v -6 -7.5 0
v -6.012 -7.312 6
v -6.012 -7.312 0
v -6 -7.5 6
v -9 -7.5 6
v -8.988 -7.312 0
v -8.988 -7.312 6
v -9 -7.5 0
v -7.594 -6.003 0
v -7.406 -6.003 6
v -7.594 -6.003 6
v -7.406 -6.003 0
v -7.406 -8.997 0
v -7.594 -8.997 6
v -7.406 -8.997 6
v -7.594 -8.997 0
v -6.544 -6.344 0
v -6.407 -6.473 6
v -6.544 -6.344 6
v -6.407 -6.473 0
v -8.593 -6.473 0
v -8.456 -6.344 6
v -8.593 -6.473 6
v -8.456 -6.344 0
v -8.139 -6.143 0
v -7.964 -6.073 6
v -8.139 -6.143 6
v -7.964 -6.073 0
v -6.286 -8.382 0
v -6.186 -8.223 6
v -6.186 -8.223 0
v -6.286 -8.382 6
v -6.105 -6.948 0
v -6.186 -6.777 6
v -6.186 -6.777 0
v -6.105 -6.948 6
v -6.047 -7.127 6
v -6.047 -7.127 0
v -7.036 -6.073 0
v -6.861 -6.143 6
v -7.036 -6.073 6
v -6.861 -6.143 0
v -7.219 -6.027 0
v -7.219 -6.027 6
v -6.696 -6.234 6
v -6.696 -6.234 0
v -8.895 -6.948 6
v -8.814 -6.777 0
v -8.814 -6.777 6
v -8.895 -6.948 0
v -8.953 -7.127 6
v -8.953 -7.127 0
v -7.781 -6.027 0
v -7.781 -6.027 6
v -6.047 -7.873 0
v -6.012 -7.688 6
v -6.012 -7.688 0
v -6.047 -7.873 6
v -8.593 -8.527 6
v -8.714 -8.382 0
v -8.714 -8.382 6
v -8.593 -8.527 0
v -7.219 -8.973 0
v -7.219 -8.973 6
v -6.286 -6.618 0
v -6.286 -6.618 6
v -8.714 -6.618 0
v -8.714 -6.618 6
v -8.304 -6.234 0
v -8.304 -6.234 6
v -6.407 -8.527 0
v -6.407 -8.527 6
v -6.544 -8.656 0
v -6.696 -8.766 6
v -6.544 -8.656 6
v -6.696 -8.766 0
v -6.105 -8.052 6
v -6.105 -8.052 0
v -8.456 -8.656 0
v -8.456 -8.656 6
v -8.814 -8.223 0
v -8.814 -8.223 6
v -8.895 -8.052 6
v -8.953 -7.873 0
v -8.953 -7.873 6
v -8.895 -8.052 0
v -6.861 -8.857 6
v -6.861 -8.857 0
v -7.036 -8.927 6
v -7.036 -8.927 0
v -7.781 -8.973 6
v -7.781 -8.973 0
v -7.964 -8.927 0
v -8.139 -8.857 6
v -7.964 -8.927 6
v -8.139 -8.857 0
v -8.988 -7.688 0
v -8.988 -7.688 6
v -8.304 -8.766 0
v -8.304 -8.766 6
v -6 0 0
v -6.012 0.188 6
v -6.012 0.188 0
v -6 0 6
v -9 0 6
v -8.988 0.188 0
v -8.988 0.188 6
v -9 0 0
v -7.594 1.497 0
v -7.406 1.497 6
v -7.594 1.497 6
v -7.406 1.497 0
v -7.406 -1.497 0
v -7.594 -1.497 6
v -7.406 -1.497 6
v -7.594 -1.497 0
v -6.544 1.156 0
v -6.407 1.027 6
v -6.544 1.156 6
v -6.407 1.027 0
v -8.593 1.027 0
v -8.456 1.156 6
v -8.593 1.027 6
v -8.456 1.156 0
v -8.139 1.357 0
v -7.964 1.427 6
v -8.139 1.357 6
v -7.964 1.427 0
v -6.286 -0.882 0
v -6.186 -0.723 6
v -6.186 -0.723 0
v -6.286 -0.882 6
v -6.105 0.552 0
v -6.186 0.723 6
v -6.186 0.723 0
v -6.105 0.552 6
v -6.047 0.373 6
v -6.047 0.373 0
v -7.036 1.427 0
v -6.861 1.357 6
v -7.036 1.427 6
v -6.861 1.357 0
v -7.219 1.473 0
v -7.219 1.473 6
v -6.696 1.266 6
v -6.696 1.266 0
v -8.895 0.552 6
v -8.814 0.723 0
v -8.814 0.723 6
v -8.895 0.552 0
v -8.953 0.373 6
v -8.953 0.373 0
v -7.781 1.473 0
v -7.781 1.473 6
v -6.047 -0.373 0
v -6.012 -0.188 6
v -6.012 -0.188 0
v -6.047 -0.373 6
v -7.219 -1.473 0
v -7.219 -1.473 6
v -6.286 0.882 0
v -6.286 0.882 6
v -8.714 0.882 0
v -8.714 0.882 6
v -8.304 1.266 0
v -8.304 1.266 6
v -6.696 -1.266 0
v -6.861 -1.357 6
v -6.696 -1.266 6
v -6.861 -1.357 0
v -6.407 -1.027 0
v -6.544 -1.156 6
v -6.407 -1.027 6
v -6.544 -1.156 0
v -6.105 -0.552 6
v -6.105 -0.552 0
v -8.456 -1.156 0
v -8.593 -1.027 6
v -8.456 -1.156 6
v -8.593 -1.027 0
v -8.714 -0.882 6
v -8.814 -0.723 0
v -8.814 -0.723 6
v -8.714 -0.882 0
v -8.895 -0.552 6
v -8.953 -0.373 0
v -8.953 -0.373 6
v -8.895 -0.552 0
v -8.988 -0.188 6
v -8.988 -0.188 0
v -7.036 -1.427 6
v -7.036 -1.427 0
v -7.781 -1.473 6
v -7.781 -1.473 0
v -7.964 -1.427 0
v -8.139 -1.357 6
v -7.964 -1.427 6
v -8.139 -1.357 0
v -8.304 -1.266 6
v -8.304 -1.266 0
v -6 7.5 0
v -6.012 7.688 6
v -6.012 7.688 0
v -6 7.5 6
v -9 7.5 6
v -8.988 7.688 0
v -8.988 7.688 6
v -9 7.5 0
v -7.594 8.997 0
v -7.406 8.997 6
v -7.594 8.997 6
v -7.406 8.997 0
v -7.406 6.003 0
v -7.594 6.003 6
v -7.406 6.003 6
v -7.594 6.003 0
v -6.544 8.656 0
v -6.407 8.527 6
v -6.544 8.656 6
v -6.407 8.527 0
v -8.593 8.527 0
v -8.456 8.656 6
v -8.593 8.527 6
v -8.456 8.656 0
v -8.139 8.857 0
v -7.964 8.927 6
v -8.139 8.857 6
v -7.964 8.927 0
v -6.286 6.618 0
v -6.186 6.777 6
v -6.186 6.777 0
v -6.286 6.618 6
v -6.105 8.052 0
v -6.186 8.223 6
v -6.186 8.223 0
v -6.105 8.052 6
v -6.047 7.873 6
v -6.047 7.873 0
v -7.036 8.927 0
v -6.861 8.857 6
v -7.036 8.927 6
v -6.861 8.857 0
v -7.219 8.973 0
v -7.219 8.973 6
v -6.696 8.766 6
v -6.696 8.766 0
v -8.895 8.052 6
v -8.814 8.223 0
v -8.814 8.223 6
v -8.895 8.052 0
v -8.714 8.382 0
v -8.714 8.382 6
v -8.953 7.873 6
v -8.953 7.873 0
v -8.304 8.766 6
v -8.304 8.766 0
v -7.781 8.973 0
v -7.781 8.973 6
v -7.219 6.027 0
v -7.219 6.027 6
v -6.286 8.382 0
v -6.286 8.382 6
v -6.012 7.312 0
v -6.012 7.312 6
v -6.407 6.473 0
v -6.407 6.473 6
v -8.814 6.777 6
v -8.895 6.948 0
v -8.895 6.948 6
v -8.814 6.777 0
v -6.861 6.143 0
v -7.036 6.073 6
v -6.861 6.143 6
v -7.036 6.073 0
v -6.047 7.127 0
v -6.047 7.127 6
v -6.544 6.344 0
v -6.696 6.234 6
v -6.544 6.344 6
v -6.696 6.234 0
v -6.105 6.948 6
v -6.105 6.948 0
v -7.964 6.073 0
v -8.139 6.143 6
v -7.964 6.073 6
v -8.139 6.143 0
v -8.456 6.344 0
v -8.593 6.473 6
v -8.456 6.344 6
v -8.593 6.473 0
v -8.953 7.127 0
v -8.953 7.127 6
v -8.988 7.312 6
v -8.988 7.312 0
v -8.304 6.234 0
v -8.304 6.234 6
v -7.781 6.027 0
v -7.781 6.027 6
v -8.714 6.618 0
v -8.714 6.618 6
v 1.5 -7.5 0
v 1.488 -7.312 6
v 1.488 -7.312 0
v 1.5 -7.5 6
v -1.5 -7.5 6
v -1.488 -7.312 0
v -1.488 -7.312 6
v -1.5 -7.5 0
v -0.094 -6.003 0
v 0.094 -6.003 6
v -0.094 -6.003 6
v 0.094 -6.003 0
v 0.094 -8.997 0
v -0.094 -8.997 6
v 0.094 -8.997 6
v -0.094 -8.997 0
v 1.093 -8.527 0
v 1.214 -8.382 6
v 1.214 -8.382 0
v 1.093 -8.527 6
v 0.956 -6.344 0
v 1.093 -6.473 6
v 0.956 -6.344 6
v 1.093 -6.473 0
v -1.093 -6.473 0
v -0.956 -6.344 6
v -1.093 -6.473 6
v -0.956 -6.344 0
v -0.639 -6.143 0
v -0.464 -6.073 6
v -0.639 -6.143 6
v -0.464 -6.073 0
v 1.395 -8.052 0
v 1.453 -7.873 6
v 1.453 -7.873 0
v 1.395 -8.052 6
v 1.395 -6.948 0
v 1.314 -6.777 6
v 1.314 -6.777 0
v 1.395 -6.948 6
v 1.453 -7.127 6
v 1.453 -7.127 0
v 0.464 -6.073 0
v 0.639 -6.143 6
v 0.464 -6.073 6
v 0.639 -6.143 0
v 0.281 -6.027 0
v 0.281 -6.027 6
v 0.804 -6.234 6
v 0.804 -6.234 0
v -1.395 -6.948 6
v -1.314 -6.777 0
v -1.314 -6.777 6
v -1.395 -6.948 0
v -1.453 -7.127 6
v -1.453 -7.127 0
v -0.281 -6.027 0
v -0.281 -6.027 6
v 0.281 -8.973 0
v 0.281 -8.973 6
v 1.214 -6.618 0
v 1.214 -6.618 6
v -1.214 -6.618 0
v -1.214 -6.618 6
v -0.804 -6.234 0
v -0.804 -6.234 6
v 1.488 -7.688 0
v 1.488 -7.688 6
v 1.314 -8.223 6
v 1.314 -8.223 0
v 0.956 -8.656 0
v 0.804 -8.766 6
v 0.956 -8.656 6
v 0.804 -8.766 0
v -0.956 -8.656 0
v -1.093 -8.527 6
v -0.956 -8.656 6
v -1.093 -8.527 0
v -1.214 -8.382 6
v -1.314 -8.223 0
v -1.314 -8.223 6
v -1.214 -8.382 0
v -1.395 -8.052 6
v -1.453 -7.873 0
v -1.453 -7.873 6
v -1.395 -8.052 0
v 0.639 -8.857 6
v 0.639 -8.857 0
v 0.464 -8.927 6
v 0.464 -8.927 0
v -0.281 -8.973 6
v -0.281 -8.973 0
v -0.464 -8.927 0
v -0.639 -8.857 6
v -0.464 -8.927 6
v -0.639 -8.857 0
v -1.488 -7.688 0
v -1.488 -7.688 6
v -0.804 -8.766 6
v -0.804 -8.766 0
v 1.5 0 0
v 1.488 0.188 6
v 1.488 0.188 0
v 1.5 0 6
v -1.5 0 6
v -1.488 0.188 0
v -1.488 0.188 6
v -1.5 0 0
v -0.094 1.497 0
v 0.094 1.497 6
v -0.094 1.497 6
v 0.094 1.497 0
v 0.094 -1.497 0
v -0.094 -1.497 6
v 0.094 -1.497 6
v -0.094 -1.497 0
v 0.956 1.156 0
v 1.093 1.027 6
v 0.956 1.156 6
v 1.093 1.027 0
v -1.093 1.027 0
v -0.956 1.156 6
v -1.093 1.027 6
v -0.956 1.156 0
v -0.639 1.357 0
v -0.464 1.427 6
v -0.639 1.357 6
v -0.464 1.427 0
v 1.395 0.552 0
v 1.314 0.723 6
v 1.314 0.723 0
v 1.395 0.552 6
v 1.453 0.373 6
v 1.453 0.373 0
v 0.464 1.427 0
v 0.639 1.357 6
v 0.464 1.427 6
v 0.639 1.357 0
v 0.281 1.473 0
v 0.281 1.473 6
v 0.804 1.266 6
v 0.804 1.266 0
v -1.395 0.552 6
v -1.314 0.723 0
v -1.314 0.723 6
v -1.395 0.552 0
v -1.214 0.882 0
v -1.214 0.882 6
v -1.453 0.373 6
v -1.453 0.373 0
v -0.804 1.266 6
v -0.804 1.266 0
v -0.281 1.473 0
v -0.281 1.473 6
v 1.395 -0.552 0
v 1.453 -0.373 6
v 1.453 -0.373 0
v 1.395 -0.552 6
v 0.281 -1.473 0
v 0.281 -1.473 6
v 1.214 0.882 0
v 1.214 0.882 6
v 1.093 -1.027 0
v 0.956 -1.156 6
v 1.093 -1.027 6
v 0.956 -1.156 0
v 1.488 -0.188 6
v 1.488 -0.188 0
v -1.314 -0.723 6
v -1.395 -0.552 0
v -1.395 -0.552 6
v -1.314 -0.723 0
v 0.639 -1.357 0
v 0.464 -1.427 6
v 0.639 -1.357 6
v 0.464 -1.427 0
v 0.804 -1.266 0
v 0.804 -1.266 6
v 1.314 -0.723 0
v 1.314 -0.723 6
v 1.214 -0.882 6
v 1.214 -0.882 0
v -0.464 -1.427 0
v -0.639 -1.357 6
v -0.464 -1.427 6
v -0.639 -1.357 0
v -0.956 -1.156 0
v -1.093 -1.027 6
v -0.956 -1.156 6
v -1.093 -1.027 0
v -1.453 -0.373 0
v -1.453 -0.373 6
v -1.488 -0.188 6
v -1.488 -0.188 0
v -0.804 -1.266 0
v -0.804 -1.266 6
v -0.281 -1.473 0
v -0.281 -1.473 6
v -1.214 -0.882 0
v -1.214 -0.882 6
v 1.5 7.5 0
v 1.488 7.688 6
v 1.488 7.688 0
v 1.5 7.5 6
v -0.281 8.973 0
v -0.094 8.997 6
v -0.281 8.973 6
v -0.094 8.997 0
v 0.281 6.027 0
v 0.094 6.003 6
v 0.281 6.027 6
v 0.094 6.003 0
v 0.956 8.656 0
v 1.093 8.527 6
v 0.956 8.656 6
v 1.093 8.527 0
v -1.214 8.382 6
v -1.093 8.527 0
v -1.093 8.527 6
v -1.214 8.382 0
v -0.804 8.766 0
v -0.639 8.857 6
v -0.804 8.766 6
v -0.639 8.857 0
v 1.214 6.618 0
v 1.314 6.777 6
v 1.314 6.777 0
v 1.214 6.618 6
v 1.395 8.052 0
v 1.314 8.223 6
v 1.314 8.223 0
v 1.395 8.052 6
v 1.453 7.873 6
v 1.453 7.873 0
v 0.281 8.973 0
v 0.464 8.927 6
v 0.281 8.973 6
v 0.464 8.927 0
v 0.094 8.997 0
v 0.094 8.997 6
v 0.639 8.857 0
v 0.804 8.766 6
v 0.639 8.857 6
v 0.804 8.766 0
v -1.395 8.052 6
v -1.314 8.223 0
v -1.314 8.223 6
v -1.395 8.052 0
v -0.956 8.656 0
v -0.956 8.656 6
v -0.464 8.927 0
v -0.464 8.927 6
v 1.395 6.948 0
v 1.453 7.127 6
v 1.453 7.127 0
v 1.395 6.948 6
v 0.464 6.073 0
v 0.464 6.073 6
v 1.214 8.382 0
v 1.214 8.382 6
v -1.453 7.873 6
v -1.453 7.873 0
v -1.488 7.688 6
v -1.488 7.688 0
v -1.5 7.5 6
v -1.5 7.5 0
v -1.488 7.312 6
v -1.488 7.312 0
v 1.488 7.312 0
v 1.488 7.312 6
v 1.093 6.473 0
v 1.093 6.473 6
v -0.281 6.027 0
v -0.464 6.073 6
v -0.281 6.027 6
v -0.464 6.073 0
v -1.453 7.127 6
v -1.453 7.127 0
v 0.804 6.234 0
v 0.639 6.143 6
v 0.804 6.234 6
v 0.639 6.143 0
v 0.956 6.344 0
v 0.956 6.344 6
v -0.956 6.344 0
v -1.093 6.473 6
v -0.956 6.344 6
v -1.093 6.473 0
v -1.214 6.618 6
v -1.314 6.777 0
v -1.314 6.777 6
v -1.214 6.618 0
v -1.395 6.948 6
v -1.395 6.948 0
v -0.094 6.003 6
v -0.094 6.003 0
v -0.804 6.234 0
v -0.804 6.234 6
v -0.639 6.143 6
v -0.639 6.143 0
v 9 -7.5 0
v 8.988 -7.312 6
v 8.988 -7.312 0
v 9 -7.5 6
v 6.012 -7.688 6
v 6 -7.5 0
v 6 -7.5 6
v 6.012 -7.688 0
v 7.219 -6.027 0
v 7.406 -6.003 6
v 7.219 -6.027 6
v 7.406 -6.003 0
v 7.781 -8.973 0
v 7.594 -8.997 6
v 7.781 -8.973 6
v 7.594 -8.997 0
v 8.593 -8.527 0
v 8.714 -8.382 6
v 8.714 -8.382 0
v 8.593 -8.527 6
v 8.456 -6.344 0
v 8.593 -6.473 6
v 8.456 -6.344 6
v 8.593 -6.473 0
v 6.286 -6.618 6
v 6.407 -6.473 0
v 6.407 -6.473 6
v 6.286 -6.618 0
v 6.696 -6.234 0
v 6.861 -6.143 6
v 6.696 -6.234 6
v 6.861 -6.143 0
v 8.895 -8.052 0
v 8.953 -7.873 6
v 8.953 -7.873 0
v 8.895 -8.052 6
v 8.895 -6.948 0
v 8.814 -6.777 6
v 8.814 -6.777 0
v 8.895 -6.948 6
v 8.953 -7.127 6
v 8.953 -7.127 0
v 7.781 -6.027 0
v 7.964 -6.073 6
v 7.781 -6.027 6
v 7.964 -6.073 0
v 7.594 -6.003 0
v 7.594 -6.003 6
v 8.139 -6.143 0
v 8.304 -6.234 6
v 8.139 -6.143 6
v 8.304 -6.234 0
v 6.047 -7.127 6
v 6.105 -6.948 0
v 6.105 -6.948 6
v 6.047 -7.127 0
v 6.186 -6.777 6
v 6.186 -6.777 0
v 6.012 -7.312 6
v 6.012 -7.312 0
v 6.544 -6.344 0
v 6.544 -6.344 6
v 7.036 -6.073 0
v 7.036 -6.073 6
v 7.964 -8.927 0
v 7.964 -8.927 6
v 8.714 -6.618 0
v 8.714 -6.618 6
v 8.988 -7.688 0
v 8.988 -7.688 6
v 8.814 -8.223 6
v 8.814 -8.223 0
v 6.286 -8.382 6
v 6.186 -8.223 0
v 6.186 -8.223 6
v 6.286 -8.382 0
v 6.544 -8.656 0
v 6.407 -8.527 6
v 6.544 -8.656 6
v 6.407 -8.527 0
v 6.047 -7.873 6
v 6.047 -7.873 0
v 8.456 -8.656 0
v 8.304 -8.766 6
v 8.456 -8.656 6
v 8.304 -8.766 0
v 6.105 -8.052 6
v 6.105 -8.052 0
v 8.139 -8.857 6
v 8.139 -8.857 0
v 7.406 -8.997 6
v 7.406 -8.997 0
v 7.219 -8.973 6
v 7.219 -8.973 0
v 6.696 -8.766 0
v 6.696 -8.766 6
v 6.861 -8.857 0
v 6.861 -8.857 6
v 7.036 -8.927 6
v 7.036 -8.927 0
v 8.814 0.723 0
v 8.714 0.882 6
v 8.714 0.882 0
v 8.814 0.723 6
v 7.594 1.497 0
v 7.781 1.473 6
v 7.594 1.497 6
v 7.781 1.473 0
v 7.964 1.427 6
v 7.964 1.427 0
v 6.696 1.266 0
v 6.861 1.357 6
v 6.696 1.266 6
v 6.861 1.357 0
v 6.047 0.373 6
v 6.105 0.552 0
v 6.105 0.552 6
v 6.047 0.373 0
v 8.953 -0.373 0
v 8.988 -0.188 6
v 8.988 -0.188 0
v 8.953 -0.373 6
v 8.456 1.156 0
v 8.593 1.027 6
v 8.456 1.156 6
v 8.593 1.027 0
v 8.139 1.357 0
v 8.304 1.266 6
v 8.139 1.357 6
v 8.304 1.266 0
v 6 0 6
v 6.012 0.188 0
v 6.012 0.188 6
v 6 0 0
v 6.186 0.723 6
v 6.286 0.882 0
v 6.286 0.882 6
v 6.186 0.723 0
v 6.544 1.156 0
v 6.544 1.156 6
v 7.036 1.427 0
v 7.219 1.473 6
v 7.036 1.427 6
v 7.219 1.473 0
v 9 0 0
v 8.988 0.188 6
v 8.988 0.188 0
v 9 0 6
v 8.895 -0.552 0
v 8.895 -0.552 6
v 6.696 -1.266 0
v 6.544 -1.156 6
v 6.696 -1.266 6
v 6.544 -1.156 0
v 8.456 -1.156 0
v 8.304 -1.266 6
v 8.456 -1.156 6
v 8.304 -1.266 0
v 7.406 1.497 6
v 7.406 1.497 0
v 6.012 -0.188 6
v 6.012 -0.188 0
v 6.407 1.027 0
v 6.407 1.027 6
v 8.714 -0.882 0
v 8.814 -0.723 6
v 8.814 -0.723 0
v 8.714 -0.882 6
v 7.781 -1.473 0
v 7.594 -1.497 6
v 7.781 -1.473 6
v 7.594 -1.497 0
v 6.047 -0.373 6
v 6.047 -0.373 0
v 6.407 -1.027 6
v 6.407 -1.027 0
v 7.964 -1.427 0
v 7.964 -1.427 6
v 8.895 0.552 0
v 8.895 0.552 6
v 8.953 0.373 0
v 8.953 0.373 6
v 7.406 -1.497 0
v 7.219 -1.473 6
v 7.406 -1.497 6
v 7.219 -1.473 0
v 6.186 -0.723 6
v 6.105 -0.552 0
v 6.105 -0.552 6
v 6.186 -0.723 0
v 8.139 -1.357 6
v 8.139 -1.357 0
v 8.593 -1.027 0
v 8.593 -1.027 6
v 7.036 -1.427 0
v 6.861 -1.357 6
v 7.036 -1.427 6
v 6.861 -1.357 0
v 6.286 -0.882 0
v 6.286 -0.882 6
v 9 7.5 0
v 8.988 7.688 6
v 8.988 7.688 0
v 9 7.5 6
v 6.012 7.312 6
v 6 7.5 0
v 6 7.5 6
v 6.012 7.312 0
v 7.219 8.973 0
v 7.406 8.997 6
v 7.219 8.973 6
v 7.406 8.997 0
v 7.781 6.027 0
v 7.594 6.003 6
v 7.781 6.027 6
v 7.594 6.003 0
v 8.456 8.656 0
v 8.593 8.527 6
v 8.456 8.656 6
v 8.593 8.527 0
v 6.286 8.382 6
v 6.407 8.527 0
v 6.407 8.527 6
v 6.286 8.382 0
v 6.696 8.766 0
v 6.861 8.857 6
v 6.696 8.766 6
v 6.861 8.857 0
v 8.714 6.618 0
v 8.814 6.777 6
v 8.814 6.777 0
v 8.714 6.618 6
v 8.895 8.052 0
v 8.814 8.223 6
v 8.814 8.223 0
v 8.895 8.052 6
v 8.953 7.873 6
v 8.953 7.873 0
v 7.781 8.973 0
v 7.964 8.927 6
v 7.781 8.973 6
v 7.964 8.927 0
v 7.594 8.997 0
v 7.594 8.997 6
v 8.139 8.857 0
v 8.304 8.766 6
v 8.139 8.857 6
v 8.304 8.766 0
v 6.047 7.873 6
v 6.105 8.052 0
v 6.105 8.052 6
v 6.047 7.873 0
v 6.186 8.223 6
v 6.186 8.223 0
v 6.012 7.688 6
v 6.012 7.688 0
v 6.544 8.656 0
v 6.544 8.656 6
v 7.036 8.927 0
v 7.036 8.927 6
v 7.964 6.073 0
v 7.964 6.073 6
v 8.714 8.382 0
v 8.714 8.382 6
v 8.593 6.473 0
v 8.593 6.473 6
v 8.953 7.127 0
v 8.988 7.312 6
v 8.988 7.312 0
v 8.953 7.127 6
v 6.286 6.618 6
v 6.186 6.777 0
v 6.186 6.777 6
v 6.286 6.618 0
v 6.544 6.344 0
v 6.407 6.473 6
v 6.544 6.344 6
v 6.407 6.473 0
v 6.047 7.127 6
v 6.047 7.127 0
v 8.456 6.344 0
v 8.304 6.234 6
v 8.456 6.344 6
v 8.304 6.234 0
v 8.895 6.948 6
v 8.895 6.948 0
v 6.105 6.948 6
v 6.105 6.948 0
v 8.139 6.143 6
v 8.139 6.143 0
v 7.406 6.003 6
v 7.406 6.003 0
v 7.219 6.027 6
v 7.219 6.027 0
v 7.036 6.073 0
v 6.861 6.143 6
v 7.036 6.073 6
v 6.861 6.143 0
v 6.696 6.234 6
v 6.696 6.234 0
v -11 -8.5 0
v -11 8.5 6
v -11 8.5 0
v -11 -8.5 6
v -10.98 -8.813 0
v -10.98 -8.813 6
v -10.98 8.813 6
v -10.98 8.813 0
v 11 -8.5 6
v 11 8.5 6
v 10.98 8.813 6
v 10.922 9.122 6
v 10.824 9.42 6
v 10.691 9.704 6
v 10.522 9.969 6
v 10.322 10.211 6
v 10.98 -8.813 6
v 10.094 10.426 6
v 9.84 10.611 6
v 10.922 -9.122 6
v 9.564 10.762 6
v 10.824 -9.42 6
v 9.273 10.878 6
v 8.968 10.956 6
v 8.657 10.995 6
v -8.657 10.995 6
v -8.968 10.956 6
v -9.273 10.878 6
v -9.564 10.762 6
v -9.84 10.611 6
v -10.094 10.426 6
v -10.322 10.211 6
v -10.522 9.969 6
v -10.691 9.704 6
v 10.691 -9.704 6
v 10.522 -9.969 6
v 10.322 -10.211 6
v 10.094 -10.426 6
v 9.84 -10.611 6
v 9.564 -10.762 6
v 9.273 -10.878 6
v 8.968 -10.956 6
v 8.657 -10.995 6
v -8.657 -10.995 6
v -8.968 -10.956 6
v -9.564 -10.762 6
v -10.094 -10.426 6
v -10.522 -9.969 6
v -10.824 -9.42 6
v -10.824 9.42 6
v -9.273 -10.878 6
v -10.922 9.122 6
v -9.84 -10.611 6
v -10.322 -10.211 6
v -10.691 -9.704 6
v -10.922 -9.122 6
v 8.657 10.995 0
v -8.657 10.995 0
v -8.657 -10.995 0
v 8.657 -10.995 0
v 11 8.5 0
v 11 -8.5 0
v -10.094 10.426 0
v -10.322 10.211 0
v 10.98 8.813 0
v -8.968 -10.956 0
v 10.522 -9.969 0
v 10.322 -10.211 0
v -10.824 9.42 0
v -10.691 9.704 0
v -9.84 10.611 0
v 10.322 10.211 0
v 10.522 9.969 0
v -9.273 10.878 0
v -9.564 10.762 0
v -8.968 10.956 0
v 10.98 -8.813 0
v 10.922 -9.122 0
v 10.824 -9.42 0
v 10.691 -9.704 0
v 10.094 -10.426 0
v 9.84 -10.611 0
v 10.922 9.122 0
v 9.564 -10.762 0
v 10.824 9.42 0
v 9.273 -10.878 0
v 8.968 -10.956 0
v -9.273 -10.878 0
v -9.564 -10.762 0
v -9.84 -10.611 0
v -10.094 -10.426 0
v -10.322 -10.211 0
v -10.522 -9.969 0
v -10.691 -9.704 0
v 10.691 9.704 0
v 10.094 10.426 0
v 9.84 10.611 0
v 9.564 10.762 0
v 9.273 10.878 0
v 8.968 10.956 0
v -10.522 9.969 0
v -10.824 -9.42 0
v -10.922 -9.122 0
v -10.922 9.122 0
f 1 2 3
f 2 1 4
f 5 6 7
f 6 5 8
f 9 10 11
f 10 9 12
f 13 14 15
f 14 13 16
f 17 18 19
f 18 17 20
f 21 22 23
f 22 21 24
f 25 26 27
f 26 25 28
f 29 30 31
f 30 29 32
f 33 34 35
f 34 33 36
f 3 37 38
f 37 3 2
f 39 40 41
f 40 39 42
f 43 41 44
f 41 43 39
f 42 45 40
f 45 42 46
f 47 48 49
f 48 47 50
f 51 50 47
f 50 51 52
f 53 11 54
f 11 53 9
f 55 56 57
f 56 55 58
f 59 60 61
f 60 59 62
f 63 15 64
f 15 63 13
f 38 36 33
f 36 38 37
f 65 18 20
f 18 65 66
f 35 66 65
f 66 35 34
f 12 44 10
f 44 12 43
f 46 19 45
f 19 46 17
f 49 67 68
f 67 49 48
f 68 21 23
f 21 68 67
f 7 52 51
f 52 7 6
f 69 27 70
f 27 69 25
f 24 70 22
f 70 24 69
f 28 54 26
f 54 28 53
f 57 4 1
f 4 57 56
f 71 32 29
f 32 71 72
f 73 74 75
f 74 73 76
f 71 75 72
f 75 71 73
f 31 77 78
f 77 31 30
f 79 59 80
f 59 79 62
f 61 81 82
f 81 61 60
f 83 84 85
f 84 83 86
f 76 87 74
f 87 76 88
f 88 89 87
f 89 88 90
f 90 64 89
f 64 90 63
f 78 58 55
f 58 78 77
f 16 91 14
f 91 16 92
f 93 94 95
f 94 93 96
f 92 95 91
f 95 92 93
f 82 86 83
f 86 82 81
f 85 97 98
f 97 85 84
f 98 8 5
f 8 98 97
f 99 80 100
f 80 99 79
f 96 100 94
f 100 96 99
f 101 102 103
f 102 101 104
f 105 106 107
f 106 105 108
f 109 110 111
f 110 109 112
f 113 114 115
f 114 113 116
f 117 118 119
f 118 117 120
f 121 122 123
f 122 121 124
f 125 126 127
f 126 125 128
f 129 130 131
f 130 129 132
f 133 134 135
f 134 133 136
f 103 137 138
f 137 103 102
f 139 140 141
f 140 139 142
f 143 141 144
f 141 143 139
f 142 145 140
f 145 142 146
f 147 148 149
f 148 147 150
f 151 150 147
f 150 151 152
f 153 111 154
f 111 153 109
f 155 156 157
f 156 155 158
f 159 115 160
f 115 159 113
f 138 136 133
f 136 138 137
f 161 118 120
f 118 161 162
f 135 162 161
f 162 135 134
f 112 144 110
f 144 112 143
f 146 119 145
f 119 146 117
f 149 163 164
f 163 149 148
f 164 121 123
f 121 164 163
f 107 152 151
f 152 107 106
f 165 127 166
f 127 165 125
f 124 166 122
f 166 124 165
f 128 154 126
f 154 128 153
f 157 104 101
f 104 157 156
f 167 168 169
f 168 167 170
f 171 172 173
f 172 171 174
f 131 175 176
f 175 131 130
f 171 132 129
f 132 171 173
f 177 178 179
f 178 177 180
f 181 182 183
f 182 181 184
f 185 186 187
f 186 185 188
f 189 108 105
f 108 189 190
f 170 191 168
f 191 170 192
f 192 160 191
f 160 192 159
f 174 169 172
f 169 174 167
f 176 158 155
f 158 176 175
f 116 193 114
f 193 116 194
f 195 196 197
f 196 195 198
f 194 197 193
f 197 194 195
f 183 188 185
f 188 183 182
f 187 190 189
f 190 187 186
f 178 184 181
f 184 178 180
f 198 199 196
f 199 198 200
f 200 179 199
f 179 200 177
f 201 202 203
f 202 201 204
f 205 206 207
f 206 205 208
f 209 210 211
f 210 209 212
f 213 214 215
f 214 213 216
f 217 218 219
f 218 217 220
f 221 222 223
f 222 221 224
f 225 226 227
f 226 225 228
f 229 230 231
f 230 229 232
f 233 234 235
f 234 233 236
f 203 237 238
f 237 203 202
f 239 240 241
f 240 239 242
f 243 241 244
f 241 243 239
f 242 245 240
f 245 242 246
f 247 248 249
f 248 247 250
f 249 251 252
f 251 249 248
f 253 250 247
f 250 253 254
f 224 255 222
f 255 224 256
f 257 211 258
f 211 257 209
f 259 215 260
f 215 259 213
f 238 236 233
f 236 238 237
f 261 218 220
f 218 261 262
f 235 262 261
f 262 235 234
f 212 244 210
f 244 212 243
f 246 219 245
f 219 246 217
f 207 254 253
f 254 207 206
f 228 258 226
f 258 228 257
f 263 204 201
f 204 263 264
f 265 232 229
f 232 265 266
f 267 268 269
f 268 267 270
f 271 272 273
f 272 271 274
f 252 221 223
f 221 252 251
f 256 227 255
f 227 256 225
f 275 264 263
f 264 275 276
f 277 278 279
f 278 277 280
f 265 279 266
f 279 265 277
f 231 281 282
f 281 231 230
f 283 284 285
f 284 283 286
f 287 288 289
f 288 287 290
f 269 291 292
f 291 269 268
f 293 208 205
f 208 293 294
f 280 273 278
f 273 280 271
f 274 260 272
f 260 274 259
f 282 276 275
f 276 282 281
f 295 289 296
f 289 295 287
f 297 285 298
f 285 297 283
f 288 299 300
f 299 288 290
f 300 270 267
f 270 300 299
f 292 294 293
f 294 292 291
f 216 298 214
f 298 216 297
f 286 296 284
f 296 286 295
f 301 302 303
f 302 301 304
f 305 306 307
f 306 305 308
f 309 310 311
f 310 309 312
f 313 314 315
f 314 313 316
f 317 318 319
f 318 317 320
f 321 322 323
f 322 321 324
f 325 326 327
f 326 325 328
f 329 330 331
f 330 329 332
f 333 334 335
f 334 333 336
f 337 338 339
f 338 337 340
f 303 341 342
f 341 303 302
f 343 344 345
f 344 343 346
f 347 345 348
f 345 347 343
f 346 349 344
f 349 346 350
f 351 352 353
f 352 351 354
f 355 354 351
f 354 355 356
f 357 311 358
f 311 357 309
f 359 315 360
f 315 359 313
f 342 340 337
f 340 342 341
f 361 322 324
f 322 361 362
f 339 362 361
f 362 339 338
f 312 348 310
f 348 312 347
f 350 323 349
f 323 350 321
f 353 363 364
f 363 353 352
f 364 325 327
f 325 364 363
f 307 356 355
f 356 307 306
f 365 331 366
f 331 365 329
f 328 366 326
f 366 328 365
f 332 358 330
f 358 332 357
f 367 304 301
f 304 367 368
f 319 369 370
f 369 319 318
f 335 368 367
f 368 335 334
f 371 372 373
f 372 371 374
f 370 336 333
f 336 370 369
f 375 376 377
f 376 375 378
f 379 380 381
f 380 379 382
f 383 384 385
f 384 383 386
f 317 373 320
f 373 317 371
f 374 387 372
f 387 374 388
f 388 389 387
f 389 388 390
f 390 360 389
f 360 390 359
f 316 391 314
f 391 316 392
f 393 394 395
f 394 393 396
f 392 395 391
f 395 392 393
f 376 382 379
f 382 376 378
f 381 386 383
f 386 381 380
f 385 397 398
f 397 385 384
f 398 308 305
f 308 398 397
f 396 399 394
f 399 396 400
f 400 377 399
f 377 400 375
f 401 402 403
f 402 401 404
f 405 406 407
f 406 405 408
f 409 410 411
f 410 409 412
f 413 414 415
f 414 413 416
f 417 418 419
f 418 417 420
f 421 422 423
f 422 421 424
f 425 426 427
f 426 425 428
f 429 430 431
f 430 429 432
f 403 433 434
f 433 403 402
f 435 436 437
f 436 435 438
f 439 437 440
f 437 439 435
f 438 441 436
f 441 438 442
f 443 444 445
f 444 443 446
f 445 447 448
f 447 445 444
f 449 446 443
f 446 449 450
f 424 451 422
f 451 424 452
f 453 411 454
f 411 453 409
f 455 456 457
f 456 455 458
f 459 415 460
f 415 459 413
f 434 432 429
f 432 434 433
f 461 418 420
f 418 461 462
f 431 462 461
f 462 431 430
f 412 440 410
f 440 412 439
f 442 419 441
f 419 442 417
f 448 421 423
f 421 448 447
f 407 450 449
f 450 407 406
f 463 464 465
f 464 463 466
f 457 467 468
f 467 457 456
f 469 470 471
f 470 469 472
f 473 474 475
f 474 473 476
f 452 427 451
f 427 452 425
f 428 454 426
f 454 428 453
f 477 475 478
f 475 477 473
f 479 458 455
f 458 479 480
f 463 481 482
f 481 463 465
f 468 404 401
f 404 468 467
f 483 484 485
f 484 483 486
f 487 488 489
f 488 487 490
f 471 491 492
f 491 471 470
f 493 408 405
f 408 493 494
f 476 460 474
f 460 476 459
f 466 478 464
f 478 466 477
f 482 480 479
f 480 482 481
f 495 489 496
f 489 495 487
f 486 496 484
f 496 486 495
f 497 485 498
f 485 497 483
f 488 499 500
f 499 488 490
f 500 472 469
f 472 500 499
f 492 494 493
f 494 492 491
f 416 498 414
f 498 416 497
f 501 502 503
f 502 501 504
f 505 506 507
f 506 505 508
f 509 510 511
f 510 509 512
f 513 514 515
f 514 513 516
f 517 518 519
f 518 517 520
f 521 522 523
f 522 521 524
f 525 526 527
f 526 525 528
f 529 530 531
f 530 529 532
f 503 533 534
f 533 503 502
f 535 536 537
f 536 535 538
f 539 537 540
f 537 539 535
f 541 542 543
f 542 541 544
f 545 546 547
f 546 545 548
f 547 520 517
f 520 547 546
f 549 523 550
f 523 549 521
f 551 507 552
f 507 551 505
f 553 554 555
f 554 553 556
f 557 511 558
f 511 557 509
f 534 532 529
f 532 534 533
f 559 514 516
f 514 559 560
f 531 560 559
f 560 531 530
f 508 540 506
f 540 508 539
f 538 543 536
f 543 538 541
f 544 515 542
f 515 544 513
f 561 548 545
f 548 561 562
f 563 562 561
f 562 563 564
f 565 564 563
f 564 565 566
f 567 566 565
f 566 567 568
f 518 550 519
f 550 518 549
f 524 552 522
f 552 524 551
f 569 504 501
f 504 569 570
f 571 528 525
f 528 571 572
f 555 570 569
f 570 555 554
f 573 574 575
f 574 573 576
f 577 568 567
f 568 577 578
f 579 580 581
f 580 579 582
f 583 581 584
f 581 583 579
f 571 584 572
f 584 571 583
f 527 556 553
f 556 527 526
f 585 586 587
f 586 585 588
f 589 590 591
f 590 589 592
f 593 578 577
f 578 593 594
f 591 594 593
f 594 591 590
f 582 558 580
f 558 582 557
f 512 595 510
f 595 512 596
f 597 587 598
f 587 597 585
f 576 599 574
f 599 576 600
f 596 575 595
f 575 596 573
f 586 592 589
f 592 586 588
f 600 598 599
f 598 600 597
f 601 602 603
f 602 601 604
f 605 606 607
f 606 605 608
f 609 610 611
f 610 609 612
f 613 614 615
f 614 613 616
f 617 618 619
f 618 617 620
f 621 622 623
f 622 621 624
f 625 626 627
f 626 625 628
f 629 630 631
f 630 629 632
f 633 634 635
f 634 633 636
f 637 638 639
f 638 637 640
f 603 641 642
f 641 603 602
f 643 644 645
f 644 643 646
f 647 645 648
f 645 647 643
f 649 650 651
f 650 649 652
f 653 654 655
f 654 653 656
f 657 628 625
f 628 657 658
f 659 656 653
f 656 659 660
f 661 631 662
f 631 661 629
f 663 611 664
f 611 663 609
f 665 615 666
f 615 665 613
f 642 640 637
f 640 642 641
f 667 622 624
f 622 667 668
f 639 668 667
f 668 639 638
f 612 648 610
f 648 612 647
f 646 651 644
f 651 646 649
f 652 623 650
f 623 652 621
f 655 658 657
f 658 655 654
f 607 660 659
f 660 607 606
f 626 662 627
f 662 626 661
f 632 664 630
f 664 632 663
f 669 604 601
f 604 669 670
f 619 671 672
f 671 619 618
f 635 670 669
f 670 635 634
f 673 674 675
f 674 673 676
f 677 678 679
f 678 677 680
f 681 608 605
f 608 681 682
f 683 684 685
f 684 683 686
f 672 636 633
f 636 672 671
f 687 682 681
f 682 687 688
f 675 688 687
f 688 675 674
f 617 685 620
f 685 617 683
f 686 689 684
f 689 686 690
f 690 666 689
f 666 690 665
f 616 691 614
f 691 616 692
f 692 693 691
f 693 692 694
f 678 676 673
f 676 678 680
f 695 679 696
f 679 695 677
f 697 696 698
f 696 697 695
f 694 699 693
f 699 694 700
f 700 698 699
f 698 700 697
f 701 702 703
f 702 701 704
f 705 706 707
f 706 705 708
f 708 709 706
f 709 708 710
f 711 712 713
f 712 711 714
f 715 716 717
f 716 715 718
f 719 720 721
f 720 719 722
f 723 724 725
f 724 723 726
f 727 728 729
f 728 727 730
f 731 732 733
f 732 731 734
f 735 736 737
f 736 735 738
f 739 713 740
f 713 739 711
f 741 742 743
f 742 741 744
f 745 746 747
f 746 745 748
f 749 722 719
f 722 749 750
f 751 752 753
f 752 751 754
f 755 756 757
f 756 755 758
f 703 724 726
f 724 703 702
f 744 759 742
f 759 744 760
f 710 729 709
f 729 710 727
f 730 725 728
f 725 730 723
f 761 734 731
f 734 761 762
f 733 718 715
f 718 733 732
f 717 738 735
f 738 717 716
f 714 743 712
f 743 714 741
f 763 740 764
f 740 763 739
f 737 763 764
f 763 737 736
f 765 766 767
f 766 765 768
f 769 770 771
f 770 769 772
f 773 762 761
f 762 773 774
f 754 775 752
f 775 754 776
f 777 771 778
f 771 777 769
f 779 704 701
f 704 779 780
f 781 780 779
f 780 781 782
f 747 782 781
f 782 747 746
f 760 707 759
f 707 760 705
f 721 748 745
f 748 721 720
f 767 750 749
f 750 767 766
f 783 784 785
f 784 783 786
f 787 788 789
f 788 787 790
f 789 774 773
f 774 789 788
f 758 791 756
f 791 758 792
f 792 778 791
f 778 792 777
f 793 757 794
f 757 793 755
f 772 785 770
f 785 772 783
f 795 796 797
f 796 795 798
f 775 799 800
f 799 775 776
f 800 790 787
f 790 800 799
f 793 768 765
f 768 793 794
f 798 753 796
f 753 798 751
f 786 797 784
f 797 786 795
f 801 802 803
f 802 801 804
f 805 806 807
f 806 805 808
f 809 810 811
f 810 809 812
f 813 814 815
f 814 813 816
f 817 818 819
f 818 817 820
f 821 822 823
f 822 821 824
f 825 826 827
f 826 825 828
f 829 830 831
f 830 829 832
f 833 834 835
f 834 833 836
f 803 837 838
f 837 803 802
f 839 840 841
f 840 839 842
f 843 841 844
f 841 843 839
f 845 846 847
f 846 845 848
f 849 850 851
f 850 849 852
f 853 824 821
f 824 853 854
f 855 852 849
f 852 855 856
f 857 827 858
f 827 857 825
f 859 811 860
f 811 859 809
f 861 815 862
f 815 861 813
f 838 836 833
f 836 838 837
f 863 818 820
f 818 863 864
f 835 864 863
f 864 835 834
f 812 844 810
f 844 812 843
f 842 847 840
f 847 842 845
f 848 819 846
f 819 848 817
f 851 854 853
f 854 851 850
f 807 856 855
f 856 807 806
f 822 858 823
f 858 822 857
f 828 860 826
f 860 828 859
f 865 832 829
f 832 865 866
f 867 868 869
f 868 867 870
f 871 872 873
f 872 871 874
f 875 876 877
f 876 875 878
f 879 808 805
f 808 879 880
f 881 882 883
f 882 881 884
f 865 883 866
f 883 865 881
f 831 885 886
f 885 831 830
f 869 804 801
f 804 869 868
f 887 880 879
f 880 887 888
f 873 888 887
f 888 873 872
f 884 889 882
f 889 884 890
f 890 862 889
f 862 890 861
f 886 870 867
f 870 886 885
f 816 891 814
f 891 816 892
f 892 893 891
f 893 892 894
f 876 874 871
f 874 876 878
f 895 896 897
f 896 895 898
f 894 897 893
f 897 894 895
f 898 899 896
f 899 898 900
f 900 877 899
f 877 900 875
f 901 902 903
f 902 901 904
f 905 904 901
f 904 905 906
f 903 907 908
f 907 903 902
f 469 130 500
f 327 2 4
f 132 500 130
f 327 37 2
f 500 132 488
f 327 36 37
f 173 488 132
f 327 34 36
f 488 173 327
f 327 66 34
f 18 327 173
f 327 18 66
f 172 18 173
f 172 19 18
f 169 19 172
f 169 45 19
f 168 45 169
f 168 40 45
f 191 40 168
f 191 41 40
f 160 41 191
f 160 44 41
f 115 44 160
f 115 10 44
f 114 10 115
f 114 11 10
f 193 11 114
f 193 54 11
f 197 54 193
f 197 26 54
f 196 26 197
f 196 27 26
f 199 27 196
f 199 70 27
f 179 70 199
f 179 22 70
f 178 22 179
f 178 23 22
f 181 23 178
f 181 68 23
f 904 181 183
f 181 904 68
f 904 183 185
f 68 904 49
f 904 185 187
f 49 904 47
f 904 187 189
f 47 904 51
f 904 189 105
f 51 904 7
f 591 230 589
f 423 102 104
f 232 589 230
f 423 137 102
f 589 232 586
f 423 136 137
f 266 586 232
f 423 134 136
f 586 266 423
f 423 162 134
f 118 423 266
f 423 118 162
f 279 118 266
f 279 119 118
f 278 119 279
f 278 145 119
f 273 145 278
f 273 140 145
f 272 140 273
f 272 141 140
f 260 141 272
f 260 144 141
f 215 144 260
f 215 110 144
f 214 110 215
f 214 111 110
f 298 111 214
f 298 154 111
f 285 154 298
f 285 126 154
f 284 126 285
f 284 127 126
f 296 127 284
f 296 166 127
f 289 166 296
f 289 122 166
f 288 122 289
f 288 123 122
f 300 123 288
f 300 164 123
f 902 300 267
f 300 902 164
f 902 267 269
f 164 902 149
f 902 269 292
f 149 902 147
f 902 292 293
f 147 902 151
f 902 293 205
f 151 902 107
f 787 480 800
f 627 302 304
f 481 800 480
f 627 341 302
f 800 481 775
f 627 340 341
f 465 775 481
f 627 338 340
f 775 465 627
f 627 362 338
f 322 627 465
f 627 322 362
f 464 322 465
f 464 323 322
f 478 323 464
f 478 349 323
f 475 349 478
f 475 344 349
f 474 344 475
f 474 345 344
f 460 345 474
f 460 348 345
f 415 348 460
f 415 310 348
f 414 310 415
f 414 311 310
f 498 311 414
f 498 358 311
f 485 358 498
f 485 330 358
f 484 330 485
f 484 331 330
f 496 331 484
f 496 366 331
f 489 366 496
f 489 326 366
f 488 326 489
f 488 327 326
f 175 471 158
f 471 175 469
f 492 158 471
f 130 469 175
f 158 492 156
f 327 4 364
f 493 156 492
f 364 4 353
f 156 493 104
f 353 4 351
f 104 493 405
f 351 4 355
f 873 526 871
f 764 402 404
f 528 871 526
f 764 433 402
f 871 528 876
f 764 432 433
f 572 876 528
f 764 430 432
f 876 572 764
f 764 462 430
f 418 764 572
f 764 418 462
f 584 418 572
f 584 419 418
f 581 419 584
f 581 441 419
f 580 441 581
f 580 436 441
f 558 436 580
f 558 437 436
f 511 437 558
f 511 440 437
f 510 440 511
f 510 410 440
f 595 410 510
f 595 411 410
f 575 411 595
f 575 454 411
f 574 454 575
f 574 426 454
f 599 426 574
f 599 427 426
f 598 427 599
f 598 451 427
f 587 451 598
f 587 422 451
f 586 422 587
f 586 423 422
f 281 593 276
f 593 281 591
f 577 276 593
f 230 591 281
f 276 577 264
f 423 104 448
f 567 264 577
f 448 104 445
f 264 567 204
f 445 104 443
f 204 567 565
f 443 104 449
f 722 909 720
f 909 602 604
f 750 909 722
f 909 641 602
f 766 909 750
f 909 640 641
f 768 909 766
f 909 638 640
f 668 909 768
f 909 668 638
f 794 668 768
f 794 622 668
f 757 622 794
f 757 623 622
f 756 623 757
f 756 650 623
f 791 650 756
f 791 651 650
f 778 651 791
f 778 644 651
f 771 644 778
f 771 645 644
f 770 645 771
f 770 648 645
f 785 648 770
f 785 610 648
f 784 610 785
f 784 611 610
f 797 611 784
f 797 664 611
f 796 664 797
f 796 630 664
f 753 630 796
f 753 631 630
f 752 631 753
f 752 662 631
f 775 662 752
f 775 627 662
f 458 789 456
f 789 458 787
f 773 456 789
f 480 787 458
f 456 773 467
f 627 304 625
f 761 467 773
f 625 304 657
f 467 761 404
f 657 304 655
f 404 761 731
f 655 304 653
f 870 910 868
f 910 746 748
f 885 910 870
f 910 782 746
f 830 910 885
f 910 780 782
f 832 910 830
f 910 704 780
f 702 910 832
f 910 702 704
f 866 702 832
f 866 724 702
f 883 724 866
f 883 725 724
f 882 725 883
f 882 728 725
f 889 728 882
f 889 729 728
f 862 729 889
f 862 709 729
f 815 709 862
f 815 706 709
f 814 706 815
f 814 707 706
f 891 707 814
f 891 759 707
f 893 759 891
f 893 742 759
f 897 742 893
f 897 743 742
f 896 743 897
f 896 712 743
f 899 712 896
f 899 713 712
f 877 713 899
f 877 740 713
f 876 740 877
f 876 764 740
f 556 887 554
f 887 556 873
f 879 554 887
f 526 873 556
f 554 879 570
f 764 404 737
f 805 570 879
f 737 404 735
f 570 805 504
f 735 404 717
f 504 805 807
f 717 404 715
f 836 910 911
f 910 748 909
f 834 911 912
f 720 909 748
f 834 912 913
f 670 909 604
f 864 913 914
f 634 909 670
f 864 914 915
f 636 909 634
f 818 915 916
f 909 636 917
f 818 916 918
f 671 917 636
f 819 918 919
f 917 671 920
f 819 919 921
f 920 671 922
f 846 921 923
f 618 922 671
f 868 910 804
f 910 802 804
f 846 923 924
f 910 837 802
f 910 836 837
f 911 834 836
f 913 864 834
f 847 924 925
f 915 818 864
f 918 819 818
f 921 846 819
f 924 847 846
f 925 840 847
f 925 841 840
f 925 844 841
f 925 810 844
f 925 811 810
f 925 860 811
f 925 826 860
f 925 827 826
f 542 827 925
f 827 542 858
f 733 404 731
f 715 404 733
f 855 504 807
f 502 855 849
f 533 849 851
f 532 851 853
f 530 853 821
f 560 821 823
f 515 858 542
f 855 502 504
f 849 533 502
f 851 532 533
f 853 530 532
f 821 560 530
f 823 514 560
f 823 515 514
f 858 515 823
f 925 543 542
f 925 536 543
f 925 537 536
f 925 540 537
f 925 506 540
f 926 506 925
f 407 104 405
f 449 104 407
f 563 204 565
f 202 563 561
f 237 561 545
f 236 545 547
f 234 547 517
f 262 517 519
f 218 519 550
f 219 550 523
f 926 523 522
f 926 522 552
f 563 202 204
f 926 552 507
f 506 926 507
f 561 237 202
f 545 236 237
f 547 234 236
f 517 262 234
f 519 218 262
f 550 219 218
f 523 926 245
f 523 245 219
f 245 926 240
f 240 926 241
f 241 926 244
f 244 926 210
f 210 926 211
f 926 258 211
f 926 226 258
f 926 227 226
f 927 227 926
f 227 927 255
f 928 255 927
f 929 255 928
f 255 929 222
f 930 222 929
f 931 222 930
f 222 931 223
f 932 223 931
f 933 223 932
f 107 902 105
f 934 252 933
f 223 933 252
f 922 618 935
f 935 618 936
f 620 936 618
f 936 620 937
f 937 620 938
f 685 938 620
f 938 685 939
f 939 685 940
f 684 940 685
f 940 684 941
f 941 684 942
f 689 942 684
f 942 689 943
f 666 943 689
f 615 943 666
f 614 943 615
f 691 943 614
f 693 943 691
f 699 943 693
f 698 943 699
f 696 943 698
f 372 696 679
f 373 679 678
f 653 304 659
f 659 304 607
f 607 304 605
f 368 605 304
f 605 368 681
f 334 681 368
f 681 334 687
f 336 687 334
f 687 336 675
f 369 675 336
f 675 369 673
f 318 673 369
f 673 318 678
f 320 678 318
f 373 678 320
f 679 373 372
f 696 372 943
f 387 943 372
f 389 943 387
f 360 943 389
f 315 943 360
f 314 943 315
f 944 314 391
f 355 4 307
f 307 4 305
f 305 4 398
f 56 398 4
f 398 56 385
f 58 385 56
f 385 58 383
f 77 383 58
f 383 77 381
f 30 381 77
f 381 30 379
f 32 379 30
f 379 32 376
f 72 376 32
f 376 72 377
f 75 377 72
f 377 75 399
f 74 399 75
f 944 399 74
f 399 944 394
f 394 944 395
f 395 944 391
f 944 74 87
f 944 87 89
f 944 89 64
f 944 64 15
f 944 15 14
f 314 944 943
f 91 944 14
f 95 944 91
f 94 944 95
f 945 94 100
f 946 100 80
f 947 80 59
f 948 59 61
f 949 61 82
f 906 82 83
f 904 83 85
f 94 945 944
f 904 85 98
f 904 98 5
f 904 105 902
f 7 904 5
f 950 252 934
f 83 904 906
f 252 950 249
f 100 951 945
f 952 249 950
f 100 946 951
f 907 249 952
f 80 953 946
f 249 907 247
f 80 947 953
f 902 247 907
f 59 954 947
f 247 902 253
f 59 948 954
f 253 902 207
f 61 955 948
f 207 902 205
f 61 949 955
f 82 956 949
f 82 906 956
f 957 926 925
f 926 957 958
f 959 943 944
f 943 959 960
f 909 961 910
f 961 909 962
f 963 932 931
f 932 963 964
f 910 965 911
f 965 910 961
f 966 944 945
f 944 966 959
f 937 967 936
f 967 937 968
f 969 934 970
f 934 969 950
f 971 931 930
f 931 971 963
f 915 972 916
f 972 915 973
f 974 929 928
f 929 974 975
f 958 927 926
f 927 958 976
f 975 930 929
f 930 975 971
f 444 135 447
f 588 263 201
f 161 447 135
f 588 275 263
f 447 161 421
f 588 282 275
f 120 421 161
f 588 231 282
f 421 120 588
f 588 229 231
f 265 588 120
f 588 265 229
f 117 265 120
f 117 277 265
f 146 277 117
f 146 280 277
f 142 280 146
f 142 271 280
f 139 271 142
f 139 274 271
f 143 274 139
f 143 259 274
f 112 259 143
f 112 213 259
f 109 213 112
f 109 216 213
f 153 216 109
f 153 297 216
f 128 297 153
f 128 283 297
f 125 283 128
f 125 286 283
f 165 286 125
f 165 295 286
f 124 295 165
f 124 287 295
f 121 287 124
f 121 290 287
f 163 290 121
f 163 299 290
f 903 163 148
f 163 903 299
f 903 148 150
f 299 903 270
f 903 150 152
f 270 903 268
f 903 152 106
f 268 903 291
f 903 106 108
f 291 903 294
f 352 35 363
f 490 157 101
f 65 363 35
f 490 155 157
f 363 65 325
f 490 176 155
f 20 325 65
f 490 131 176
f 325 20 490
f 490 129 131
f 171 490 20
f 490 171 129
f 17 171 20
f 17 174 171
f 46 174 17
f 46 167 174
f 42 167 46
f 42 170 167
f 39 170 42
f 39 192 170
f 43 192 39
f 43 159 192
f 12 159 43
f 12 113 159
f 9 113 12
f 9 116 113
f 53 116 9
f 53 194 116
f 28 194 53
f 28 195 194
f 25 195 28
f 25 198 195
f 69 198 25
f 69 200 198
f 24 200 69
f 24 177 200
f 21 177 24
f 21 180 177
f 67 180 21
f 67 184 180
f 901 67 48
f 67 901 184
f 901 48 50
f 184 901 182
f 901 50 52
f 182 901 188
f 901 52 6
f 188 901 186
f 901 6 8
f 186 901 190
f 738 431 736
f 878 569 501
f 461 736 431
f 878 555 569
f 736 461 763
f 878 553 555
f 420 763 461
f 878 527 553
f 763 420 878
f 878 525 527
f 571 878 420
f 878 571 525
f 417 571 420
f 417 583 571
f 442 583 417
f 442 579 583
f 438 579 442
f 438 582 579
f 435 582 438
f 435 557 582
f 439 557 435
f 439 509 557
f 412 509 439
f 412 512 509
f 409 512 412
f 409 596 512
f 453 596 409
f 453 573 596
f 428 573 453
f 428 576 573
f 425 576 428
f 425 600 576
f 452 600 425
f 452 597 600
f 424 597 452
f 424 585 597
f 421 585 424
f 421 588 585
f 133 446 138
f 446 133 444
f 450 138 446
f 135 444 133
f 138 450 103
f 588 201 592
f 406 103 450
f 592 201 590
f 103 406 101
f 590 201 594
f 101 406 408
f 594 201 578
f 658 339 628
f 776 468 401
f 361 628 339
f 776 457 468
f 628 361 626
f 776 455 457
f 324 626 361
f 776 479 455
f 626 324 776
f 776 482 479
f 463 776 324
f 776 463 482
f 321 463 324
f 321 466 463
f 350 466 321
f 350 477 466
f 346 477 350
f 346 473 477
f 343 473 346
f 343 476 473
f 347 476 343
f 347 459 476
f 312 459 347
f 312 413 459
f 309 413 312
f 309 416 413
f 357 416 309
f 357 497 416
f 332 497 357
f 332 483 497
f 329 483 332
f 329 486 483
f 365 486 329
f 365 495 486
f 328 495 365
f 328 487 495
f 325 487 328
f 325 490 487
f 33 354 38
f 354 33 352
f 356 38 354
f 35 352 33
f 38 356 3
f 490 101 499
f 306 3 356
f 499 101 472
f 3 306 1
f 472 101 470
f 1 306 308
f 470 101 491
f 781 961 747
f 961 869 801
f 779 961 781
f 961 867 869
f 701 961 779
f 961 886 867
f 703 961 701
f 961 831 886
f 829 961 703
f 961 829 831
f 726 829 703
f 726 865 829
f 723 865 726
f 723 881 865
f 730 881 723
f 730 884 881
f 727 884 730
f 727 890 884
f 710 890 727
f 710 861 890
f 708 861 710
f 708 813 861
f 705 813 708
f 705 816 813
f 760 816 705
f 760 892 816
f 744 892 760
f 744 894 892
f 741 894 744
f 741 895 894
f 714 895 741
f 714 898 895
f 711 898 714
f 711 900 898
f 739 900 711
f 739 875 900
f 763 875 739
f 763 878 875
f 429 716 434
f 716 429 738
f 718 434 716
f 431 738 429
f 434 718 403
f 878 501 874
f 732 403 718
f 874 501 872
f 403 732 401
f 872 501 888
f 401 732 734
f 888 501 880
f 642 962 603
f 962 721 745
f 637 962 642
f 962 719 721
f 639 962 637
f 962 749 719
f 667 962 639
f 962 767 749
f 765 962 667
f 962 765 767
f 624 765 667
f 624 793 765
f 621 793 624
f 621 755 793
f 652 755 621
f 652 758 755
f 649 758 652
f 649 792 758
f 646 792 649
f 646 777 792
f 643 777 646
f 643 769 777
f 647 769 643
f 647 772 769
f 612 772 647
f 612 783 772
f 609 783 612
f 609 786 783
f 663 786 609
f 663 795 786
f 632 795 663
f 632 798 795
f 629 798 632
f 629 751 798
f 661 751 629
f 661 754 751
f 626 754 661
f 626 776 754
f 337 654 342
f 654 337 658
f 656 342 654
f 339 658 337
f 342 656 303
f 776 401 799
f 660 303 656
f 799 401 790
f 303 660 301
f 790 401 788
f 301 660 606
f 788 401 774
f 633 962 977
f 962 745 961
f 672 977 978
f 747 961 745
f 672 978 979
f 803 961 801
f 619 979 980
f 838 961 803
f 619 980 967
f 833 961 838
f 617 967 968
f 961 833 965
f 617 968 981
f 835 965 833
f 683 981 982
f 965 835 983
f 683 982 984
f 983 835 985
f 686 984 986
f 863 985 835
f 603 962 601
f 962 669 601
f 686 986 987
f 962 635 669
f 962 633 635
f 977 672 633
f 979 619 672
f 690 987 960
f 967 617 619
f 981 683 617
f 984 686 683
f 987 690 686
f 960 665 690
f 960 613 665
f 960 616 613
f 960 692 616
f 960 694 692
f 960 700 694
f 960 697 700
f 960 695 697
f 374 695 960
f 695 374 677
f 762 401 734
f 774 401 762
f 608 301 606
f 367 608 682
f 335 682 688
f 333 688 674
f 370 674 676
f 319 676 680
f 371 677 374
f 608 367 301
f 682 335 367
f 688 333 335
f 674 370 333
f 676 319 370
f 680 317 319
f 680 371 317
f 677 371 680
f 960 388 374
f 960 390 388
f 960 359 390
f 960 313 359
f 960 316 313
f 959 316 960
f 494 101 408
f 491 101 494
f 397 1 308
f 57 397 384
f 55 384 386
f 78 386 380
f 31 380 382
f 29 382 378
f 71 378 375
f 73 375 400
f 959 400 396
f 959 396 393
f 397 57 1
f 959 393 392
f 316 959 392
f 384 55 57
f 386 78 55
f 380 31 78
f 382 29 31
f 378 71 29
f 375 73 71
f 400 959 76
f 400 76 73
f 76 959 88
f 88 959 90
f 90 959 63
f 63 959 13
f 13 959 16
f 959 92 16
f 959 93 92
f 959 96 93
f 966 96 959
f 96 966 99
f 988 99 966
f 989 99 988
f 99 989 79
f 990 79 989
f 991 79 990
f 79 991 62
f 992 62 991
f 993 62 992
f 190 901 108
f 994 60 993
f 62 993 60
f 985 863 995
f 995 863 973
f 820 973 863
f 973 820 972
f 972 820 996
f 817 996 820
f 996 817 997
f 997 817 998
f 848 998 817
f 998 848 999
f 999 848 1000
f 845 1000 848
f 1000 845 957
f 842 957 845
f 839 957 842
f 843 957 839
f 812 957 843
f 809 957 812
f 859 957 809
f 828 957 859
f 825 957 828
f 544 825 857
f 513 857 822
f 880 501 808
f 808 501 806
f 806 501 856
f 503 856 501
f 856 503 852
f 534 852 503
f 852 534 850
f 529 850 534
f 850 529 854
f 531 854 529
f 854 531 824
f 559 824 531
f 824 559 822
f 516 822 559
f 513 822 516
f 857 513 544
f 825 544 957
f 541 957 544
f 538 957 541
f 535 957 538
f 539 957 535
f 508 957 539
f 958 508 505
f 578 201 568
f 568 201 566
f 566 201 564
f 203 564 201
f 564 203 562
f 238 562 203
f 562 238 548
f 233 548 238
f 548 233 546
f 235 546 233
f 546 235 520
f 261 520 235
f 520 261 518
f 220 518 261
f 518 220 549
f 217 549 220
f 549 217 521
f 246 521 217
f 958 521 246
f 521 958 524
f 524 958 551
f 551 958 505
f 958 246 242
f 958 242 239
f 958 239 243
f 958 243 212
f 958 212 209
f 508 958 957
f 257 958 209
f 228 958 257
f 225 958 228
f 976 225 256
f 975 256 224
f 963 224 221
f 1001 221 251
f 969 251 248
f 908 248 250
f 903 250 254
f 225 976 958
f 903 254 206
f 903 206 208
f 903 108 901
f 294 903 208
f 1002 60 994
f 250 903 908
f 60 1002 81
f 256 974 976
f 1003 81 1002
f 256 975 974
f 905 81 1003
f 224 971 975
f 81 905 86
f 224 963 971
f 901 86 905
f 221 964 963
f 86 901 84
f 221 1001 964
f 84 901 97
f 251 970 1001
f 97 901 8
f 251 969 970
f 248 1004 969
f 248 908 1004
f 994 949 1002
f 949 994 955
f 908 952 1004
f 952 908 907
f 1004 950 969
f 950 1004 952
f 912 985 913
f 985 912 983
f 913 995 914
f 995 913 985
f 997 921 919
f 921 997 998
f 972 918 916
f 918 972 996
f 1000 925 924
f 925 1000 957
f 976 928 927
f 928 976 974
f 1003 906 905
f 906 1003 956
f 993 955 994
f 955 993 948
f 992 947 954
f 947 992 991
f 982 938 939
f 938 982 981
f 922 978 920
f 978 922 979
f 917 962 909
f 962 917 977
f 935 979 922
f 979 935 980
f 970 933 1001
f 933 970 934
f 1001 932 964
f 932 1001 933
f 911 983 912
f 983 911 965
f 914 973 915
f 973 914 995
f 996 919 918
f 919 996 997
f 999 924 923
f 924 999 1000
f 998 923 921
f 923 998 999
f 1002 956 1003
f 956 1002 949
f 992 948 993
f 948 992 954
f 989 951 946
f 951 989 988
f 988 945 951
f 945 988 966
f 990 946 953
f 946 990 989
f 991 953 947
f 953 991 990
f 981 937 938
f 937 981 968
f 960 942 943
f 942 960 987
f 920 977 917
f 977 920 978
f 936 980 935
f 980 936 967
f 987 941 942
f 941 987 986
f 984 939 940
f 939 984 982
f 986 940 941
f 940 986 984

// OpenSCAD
$fn = 50;


difference() {
	union() {
		translate(v = [0, 0, 0]) {
			rotate(a = [0, 0, 0]) {
				hull() {
					translate(v = [-8.5000000000, 8.5000000000, 0]) {
						rotate(a = [0, 0, 0]) {
							translate(v = [0, 0, 0]) {
								rotate(a = [0, 0, 0]) {
									cylinder(h = 6, r = 2.5000000000);
								}
							}
						}
					}
					translate(v = [8.5000000000, 8.5000000000, 0]) {
						rotate(a = [0, 0, 0]) {
							translate(v = [0, 0, 0]) {
								rotate(a = [0, 0, 0]) {
									cylinder(h = 6, r = 2.5000000000);
								}
							}
						}
					}
					translate(v = [-8.5000000000, -8.5000000000, 0]) {
						rotate(a = [0, 0, 0]) {
							translate(v = [0, 0, 0]) {
								rotate(a = [0, 0, 0]) {
									cylinder(h = 6, r = 2.5000000000);
								}
							}
						}
					}
					translate(v = [8.5000000000, -8.5000000000, 0]) {
						rotate(a = [0, 0, 0]) {
							translate(v = [0, 0, 0]) {
								rotate(a = [0, 0, 0]) {
									cylinder(h = 6, r = 2.5000000000);
								}
							}
						}
					}
				}
			}
		}
	}
	union() {
		translate(v = [-7.5000000000, -7.5000000000, 0]) {
			rotate(a = [0, 0, 0]) {
				translate(v = [0, 0, -50]) {
					rotate(a = [0, 0, 0]) {
						cylinder(h = 100, r = 1.5000000000);
					}
				}
			}
		}
		translate(v = [-7.5000000000, 0.0000000000, 0]) {
			rotate(a = [0, 0, 0]) {
				translate(v = [0, 0, -50]) {
					rotate(a = [0, 0, 0]) {
						cylinder(h = 100, r = 1.5000000000);
					}
				}
			}
		}
		translate(v = [-7.5000000000, 7.5000000000, 0]) {
			rotate(a = [0, 0, 0]) {
				translate(v = [0, 0, -50]) {
					rotate(a = [0, 0, 0]) {
						cylinder(h = 100, r = 1.5000000000);
					}
				}
			}
		}
		translate(v = [0.0000000000, -7.5000000000, 0]) {
			rotate(a = [0, 0, 0]) {
				translate(v = [0, 0, -50]) {
					rotate(a = [0, 0, 0]) {
						cylinder(h = 100, r = 1.5000000000);
					}
				}
			}
		}
		translate(v = [0.0000000000, 0.0000000000, 0]) {
			rotate(a = [0, 0, 0]) {
				translate(v = [0, 0, -50]) {
					rotate(a = [0, 0, 0]) {
						cylinder(h = 100, r = 1.5000000000);
					}
				}
			}
		}
		translate(v = [0.0000000000, 7.5000000000, 0]) {
			rotate(a = [0, 0, 0]) {
				translate(v = [0, 0, -50]) {
					rotate(a = [0, 0, 0]) {
						cylinder(h = 100, r = 1.5000000000);
					}
				}
			}
		}
		translate(v = [7.5000000000, -7.5000000000, 0]) {
			rotate(a = [0, 0, 0]) {
				translate(v = [0, 0, -50]) {
					rotate(a = [0, 0, 0]) {
						cylinder(h = 100, r = 1.5000000000);
					}
				}
			}
		}
		translate(v = [7.5000000000, 0.0000000000, 0]) {
			rotate(a = [0, 0, 0]) {
				translate(v = [0, 0, -50]) {
					rotate(a = [0, 0, 0]) {
						cylinder(h = 100, r = 1.5000000000);
					}
				}
			}
		}
		translate(v = [7.5000000000, 7.5000000000, 0]) {
			rotate(a = [0, 0, 0]) {
				translate(v = [0, 0, -50]) {
					rotate(a = [0, 0, 0]) {
						cylinder(h = 100, r = 1.5000000000);
					}
				}
			}
		}
	}
}
